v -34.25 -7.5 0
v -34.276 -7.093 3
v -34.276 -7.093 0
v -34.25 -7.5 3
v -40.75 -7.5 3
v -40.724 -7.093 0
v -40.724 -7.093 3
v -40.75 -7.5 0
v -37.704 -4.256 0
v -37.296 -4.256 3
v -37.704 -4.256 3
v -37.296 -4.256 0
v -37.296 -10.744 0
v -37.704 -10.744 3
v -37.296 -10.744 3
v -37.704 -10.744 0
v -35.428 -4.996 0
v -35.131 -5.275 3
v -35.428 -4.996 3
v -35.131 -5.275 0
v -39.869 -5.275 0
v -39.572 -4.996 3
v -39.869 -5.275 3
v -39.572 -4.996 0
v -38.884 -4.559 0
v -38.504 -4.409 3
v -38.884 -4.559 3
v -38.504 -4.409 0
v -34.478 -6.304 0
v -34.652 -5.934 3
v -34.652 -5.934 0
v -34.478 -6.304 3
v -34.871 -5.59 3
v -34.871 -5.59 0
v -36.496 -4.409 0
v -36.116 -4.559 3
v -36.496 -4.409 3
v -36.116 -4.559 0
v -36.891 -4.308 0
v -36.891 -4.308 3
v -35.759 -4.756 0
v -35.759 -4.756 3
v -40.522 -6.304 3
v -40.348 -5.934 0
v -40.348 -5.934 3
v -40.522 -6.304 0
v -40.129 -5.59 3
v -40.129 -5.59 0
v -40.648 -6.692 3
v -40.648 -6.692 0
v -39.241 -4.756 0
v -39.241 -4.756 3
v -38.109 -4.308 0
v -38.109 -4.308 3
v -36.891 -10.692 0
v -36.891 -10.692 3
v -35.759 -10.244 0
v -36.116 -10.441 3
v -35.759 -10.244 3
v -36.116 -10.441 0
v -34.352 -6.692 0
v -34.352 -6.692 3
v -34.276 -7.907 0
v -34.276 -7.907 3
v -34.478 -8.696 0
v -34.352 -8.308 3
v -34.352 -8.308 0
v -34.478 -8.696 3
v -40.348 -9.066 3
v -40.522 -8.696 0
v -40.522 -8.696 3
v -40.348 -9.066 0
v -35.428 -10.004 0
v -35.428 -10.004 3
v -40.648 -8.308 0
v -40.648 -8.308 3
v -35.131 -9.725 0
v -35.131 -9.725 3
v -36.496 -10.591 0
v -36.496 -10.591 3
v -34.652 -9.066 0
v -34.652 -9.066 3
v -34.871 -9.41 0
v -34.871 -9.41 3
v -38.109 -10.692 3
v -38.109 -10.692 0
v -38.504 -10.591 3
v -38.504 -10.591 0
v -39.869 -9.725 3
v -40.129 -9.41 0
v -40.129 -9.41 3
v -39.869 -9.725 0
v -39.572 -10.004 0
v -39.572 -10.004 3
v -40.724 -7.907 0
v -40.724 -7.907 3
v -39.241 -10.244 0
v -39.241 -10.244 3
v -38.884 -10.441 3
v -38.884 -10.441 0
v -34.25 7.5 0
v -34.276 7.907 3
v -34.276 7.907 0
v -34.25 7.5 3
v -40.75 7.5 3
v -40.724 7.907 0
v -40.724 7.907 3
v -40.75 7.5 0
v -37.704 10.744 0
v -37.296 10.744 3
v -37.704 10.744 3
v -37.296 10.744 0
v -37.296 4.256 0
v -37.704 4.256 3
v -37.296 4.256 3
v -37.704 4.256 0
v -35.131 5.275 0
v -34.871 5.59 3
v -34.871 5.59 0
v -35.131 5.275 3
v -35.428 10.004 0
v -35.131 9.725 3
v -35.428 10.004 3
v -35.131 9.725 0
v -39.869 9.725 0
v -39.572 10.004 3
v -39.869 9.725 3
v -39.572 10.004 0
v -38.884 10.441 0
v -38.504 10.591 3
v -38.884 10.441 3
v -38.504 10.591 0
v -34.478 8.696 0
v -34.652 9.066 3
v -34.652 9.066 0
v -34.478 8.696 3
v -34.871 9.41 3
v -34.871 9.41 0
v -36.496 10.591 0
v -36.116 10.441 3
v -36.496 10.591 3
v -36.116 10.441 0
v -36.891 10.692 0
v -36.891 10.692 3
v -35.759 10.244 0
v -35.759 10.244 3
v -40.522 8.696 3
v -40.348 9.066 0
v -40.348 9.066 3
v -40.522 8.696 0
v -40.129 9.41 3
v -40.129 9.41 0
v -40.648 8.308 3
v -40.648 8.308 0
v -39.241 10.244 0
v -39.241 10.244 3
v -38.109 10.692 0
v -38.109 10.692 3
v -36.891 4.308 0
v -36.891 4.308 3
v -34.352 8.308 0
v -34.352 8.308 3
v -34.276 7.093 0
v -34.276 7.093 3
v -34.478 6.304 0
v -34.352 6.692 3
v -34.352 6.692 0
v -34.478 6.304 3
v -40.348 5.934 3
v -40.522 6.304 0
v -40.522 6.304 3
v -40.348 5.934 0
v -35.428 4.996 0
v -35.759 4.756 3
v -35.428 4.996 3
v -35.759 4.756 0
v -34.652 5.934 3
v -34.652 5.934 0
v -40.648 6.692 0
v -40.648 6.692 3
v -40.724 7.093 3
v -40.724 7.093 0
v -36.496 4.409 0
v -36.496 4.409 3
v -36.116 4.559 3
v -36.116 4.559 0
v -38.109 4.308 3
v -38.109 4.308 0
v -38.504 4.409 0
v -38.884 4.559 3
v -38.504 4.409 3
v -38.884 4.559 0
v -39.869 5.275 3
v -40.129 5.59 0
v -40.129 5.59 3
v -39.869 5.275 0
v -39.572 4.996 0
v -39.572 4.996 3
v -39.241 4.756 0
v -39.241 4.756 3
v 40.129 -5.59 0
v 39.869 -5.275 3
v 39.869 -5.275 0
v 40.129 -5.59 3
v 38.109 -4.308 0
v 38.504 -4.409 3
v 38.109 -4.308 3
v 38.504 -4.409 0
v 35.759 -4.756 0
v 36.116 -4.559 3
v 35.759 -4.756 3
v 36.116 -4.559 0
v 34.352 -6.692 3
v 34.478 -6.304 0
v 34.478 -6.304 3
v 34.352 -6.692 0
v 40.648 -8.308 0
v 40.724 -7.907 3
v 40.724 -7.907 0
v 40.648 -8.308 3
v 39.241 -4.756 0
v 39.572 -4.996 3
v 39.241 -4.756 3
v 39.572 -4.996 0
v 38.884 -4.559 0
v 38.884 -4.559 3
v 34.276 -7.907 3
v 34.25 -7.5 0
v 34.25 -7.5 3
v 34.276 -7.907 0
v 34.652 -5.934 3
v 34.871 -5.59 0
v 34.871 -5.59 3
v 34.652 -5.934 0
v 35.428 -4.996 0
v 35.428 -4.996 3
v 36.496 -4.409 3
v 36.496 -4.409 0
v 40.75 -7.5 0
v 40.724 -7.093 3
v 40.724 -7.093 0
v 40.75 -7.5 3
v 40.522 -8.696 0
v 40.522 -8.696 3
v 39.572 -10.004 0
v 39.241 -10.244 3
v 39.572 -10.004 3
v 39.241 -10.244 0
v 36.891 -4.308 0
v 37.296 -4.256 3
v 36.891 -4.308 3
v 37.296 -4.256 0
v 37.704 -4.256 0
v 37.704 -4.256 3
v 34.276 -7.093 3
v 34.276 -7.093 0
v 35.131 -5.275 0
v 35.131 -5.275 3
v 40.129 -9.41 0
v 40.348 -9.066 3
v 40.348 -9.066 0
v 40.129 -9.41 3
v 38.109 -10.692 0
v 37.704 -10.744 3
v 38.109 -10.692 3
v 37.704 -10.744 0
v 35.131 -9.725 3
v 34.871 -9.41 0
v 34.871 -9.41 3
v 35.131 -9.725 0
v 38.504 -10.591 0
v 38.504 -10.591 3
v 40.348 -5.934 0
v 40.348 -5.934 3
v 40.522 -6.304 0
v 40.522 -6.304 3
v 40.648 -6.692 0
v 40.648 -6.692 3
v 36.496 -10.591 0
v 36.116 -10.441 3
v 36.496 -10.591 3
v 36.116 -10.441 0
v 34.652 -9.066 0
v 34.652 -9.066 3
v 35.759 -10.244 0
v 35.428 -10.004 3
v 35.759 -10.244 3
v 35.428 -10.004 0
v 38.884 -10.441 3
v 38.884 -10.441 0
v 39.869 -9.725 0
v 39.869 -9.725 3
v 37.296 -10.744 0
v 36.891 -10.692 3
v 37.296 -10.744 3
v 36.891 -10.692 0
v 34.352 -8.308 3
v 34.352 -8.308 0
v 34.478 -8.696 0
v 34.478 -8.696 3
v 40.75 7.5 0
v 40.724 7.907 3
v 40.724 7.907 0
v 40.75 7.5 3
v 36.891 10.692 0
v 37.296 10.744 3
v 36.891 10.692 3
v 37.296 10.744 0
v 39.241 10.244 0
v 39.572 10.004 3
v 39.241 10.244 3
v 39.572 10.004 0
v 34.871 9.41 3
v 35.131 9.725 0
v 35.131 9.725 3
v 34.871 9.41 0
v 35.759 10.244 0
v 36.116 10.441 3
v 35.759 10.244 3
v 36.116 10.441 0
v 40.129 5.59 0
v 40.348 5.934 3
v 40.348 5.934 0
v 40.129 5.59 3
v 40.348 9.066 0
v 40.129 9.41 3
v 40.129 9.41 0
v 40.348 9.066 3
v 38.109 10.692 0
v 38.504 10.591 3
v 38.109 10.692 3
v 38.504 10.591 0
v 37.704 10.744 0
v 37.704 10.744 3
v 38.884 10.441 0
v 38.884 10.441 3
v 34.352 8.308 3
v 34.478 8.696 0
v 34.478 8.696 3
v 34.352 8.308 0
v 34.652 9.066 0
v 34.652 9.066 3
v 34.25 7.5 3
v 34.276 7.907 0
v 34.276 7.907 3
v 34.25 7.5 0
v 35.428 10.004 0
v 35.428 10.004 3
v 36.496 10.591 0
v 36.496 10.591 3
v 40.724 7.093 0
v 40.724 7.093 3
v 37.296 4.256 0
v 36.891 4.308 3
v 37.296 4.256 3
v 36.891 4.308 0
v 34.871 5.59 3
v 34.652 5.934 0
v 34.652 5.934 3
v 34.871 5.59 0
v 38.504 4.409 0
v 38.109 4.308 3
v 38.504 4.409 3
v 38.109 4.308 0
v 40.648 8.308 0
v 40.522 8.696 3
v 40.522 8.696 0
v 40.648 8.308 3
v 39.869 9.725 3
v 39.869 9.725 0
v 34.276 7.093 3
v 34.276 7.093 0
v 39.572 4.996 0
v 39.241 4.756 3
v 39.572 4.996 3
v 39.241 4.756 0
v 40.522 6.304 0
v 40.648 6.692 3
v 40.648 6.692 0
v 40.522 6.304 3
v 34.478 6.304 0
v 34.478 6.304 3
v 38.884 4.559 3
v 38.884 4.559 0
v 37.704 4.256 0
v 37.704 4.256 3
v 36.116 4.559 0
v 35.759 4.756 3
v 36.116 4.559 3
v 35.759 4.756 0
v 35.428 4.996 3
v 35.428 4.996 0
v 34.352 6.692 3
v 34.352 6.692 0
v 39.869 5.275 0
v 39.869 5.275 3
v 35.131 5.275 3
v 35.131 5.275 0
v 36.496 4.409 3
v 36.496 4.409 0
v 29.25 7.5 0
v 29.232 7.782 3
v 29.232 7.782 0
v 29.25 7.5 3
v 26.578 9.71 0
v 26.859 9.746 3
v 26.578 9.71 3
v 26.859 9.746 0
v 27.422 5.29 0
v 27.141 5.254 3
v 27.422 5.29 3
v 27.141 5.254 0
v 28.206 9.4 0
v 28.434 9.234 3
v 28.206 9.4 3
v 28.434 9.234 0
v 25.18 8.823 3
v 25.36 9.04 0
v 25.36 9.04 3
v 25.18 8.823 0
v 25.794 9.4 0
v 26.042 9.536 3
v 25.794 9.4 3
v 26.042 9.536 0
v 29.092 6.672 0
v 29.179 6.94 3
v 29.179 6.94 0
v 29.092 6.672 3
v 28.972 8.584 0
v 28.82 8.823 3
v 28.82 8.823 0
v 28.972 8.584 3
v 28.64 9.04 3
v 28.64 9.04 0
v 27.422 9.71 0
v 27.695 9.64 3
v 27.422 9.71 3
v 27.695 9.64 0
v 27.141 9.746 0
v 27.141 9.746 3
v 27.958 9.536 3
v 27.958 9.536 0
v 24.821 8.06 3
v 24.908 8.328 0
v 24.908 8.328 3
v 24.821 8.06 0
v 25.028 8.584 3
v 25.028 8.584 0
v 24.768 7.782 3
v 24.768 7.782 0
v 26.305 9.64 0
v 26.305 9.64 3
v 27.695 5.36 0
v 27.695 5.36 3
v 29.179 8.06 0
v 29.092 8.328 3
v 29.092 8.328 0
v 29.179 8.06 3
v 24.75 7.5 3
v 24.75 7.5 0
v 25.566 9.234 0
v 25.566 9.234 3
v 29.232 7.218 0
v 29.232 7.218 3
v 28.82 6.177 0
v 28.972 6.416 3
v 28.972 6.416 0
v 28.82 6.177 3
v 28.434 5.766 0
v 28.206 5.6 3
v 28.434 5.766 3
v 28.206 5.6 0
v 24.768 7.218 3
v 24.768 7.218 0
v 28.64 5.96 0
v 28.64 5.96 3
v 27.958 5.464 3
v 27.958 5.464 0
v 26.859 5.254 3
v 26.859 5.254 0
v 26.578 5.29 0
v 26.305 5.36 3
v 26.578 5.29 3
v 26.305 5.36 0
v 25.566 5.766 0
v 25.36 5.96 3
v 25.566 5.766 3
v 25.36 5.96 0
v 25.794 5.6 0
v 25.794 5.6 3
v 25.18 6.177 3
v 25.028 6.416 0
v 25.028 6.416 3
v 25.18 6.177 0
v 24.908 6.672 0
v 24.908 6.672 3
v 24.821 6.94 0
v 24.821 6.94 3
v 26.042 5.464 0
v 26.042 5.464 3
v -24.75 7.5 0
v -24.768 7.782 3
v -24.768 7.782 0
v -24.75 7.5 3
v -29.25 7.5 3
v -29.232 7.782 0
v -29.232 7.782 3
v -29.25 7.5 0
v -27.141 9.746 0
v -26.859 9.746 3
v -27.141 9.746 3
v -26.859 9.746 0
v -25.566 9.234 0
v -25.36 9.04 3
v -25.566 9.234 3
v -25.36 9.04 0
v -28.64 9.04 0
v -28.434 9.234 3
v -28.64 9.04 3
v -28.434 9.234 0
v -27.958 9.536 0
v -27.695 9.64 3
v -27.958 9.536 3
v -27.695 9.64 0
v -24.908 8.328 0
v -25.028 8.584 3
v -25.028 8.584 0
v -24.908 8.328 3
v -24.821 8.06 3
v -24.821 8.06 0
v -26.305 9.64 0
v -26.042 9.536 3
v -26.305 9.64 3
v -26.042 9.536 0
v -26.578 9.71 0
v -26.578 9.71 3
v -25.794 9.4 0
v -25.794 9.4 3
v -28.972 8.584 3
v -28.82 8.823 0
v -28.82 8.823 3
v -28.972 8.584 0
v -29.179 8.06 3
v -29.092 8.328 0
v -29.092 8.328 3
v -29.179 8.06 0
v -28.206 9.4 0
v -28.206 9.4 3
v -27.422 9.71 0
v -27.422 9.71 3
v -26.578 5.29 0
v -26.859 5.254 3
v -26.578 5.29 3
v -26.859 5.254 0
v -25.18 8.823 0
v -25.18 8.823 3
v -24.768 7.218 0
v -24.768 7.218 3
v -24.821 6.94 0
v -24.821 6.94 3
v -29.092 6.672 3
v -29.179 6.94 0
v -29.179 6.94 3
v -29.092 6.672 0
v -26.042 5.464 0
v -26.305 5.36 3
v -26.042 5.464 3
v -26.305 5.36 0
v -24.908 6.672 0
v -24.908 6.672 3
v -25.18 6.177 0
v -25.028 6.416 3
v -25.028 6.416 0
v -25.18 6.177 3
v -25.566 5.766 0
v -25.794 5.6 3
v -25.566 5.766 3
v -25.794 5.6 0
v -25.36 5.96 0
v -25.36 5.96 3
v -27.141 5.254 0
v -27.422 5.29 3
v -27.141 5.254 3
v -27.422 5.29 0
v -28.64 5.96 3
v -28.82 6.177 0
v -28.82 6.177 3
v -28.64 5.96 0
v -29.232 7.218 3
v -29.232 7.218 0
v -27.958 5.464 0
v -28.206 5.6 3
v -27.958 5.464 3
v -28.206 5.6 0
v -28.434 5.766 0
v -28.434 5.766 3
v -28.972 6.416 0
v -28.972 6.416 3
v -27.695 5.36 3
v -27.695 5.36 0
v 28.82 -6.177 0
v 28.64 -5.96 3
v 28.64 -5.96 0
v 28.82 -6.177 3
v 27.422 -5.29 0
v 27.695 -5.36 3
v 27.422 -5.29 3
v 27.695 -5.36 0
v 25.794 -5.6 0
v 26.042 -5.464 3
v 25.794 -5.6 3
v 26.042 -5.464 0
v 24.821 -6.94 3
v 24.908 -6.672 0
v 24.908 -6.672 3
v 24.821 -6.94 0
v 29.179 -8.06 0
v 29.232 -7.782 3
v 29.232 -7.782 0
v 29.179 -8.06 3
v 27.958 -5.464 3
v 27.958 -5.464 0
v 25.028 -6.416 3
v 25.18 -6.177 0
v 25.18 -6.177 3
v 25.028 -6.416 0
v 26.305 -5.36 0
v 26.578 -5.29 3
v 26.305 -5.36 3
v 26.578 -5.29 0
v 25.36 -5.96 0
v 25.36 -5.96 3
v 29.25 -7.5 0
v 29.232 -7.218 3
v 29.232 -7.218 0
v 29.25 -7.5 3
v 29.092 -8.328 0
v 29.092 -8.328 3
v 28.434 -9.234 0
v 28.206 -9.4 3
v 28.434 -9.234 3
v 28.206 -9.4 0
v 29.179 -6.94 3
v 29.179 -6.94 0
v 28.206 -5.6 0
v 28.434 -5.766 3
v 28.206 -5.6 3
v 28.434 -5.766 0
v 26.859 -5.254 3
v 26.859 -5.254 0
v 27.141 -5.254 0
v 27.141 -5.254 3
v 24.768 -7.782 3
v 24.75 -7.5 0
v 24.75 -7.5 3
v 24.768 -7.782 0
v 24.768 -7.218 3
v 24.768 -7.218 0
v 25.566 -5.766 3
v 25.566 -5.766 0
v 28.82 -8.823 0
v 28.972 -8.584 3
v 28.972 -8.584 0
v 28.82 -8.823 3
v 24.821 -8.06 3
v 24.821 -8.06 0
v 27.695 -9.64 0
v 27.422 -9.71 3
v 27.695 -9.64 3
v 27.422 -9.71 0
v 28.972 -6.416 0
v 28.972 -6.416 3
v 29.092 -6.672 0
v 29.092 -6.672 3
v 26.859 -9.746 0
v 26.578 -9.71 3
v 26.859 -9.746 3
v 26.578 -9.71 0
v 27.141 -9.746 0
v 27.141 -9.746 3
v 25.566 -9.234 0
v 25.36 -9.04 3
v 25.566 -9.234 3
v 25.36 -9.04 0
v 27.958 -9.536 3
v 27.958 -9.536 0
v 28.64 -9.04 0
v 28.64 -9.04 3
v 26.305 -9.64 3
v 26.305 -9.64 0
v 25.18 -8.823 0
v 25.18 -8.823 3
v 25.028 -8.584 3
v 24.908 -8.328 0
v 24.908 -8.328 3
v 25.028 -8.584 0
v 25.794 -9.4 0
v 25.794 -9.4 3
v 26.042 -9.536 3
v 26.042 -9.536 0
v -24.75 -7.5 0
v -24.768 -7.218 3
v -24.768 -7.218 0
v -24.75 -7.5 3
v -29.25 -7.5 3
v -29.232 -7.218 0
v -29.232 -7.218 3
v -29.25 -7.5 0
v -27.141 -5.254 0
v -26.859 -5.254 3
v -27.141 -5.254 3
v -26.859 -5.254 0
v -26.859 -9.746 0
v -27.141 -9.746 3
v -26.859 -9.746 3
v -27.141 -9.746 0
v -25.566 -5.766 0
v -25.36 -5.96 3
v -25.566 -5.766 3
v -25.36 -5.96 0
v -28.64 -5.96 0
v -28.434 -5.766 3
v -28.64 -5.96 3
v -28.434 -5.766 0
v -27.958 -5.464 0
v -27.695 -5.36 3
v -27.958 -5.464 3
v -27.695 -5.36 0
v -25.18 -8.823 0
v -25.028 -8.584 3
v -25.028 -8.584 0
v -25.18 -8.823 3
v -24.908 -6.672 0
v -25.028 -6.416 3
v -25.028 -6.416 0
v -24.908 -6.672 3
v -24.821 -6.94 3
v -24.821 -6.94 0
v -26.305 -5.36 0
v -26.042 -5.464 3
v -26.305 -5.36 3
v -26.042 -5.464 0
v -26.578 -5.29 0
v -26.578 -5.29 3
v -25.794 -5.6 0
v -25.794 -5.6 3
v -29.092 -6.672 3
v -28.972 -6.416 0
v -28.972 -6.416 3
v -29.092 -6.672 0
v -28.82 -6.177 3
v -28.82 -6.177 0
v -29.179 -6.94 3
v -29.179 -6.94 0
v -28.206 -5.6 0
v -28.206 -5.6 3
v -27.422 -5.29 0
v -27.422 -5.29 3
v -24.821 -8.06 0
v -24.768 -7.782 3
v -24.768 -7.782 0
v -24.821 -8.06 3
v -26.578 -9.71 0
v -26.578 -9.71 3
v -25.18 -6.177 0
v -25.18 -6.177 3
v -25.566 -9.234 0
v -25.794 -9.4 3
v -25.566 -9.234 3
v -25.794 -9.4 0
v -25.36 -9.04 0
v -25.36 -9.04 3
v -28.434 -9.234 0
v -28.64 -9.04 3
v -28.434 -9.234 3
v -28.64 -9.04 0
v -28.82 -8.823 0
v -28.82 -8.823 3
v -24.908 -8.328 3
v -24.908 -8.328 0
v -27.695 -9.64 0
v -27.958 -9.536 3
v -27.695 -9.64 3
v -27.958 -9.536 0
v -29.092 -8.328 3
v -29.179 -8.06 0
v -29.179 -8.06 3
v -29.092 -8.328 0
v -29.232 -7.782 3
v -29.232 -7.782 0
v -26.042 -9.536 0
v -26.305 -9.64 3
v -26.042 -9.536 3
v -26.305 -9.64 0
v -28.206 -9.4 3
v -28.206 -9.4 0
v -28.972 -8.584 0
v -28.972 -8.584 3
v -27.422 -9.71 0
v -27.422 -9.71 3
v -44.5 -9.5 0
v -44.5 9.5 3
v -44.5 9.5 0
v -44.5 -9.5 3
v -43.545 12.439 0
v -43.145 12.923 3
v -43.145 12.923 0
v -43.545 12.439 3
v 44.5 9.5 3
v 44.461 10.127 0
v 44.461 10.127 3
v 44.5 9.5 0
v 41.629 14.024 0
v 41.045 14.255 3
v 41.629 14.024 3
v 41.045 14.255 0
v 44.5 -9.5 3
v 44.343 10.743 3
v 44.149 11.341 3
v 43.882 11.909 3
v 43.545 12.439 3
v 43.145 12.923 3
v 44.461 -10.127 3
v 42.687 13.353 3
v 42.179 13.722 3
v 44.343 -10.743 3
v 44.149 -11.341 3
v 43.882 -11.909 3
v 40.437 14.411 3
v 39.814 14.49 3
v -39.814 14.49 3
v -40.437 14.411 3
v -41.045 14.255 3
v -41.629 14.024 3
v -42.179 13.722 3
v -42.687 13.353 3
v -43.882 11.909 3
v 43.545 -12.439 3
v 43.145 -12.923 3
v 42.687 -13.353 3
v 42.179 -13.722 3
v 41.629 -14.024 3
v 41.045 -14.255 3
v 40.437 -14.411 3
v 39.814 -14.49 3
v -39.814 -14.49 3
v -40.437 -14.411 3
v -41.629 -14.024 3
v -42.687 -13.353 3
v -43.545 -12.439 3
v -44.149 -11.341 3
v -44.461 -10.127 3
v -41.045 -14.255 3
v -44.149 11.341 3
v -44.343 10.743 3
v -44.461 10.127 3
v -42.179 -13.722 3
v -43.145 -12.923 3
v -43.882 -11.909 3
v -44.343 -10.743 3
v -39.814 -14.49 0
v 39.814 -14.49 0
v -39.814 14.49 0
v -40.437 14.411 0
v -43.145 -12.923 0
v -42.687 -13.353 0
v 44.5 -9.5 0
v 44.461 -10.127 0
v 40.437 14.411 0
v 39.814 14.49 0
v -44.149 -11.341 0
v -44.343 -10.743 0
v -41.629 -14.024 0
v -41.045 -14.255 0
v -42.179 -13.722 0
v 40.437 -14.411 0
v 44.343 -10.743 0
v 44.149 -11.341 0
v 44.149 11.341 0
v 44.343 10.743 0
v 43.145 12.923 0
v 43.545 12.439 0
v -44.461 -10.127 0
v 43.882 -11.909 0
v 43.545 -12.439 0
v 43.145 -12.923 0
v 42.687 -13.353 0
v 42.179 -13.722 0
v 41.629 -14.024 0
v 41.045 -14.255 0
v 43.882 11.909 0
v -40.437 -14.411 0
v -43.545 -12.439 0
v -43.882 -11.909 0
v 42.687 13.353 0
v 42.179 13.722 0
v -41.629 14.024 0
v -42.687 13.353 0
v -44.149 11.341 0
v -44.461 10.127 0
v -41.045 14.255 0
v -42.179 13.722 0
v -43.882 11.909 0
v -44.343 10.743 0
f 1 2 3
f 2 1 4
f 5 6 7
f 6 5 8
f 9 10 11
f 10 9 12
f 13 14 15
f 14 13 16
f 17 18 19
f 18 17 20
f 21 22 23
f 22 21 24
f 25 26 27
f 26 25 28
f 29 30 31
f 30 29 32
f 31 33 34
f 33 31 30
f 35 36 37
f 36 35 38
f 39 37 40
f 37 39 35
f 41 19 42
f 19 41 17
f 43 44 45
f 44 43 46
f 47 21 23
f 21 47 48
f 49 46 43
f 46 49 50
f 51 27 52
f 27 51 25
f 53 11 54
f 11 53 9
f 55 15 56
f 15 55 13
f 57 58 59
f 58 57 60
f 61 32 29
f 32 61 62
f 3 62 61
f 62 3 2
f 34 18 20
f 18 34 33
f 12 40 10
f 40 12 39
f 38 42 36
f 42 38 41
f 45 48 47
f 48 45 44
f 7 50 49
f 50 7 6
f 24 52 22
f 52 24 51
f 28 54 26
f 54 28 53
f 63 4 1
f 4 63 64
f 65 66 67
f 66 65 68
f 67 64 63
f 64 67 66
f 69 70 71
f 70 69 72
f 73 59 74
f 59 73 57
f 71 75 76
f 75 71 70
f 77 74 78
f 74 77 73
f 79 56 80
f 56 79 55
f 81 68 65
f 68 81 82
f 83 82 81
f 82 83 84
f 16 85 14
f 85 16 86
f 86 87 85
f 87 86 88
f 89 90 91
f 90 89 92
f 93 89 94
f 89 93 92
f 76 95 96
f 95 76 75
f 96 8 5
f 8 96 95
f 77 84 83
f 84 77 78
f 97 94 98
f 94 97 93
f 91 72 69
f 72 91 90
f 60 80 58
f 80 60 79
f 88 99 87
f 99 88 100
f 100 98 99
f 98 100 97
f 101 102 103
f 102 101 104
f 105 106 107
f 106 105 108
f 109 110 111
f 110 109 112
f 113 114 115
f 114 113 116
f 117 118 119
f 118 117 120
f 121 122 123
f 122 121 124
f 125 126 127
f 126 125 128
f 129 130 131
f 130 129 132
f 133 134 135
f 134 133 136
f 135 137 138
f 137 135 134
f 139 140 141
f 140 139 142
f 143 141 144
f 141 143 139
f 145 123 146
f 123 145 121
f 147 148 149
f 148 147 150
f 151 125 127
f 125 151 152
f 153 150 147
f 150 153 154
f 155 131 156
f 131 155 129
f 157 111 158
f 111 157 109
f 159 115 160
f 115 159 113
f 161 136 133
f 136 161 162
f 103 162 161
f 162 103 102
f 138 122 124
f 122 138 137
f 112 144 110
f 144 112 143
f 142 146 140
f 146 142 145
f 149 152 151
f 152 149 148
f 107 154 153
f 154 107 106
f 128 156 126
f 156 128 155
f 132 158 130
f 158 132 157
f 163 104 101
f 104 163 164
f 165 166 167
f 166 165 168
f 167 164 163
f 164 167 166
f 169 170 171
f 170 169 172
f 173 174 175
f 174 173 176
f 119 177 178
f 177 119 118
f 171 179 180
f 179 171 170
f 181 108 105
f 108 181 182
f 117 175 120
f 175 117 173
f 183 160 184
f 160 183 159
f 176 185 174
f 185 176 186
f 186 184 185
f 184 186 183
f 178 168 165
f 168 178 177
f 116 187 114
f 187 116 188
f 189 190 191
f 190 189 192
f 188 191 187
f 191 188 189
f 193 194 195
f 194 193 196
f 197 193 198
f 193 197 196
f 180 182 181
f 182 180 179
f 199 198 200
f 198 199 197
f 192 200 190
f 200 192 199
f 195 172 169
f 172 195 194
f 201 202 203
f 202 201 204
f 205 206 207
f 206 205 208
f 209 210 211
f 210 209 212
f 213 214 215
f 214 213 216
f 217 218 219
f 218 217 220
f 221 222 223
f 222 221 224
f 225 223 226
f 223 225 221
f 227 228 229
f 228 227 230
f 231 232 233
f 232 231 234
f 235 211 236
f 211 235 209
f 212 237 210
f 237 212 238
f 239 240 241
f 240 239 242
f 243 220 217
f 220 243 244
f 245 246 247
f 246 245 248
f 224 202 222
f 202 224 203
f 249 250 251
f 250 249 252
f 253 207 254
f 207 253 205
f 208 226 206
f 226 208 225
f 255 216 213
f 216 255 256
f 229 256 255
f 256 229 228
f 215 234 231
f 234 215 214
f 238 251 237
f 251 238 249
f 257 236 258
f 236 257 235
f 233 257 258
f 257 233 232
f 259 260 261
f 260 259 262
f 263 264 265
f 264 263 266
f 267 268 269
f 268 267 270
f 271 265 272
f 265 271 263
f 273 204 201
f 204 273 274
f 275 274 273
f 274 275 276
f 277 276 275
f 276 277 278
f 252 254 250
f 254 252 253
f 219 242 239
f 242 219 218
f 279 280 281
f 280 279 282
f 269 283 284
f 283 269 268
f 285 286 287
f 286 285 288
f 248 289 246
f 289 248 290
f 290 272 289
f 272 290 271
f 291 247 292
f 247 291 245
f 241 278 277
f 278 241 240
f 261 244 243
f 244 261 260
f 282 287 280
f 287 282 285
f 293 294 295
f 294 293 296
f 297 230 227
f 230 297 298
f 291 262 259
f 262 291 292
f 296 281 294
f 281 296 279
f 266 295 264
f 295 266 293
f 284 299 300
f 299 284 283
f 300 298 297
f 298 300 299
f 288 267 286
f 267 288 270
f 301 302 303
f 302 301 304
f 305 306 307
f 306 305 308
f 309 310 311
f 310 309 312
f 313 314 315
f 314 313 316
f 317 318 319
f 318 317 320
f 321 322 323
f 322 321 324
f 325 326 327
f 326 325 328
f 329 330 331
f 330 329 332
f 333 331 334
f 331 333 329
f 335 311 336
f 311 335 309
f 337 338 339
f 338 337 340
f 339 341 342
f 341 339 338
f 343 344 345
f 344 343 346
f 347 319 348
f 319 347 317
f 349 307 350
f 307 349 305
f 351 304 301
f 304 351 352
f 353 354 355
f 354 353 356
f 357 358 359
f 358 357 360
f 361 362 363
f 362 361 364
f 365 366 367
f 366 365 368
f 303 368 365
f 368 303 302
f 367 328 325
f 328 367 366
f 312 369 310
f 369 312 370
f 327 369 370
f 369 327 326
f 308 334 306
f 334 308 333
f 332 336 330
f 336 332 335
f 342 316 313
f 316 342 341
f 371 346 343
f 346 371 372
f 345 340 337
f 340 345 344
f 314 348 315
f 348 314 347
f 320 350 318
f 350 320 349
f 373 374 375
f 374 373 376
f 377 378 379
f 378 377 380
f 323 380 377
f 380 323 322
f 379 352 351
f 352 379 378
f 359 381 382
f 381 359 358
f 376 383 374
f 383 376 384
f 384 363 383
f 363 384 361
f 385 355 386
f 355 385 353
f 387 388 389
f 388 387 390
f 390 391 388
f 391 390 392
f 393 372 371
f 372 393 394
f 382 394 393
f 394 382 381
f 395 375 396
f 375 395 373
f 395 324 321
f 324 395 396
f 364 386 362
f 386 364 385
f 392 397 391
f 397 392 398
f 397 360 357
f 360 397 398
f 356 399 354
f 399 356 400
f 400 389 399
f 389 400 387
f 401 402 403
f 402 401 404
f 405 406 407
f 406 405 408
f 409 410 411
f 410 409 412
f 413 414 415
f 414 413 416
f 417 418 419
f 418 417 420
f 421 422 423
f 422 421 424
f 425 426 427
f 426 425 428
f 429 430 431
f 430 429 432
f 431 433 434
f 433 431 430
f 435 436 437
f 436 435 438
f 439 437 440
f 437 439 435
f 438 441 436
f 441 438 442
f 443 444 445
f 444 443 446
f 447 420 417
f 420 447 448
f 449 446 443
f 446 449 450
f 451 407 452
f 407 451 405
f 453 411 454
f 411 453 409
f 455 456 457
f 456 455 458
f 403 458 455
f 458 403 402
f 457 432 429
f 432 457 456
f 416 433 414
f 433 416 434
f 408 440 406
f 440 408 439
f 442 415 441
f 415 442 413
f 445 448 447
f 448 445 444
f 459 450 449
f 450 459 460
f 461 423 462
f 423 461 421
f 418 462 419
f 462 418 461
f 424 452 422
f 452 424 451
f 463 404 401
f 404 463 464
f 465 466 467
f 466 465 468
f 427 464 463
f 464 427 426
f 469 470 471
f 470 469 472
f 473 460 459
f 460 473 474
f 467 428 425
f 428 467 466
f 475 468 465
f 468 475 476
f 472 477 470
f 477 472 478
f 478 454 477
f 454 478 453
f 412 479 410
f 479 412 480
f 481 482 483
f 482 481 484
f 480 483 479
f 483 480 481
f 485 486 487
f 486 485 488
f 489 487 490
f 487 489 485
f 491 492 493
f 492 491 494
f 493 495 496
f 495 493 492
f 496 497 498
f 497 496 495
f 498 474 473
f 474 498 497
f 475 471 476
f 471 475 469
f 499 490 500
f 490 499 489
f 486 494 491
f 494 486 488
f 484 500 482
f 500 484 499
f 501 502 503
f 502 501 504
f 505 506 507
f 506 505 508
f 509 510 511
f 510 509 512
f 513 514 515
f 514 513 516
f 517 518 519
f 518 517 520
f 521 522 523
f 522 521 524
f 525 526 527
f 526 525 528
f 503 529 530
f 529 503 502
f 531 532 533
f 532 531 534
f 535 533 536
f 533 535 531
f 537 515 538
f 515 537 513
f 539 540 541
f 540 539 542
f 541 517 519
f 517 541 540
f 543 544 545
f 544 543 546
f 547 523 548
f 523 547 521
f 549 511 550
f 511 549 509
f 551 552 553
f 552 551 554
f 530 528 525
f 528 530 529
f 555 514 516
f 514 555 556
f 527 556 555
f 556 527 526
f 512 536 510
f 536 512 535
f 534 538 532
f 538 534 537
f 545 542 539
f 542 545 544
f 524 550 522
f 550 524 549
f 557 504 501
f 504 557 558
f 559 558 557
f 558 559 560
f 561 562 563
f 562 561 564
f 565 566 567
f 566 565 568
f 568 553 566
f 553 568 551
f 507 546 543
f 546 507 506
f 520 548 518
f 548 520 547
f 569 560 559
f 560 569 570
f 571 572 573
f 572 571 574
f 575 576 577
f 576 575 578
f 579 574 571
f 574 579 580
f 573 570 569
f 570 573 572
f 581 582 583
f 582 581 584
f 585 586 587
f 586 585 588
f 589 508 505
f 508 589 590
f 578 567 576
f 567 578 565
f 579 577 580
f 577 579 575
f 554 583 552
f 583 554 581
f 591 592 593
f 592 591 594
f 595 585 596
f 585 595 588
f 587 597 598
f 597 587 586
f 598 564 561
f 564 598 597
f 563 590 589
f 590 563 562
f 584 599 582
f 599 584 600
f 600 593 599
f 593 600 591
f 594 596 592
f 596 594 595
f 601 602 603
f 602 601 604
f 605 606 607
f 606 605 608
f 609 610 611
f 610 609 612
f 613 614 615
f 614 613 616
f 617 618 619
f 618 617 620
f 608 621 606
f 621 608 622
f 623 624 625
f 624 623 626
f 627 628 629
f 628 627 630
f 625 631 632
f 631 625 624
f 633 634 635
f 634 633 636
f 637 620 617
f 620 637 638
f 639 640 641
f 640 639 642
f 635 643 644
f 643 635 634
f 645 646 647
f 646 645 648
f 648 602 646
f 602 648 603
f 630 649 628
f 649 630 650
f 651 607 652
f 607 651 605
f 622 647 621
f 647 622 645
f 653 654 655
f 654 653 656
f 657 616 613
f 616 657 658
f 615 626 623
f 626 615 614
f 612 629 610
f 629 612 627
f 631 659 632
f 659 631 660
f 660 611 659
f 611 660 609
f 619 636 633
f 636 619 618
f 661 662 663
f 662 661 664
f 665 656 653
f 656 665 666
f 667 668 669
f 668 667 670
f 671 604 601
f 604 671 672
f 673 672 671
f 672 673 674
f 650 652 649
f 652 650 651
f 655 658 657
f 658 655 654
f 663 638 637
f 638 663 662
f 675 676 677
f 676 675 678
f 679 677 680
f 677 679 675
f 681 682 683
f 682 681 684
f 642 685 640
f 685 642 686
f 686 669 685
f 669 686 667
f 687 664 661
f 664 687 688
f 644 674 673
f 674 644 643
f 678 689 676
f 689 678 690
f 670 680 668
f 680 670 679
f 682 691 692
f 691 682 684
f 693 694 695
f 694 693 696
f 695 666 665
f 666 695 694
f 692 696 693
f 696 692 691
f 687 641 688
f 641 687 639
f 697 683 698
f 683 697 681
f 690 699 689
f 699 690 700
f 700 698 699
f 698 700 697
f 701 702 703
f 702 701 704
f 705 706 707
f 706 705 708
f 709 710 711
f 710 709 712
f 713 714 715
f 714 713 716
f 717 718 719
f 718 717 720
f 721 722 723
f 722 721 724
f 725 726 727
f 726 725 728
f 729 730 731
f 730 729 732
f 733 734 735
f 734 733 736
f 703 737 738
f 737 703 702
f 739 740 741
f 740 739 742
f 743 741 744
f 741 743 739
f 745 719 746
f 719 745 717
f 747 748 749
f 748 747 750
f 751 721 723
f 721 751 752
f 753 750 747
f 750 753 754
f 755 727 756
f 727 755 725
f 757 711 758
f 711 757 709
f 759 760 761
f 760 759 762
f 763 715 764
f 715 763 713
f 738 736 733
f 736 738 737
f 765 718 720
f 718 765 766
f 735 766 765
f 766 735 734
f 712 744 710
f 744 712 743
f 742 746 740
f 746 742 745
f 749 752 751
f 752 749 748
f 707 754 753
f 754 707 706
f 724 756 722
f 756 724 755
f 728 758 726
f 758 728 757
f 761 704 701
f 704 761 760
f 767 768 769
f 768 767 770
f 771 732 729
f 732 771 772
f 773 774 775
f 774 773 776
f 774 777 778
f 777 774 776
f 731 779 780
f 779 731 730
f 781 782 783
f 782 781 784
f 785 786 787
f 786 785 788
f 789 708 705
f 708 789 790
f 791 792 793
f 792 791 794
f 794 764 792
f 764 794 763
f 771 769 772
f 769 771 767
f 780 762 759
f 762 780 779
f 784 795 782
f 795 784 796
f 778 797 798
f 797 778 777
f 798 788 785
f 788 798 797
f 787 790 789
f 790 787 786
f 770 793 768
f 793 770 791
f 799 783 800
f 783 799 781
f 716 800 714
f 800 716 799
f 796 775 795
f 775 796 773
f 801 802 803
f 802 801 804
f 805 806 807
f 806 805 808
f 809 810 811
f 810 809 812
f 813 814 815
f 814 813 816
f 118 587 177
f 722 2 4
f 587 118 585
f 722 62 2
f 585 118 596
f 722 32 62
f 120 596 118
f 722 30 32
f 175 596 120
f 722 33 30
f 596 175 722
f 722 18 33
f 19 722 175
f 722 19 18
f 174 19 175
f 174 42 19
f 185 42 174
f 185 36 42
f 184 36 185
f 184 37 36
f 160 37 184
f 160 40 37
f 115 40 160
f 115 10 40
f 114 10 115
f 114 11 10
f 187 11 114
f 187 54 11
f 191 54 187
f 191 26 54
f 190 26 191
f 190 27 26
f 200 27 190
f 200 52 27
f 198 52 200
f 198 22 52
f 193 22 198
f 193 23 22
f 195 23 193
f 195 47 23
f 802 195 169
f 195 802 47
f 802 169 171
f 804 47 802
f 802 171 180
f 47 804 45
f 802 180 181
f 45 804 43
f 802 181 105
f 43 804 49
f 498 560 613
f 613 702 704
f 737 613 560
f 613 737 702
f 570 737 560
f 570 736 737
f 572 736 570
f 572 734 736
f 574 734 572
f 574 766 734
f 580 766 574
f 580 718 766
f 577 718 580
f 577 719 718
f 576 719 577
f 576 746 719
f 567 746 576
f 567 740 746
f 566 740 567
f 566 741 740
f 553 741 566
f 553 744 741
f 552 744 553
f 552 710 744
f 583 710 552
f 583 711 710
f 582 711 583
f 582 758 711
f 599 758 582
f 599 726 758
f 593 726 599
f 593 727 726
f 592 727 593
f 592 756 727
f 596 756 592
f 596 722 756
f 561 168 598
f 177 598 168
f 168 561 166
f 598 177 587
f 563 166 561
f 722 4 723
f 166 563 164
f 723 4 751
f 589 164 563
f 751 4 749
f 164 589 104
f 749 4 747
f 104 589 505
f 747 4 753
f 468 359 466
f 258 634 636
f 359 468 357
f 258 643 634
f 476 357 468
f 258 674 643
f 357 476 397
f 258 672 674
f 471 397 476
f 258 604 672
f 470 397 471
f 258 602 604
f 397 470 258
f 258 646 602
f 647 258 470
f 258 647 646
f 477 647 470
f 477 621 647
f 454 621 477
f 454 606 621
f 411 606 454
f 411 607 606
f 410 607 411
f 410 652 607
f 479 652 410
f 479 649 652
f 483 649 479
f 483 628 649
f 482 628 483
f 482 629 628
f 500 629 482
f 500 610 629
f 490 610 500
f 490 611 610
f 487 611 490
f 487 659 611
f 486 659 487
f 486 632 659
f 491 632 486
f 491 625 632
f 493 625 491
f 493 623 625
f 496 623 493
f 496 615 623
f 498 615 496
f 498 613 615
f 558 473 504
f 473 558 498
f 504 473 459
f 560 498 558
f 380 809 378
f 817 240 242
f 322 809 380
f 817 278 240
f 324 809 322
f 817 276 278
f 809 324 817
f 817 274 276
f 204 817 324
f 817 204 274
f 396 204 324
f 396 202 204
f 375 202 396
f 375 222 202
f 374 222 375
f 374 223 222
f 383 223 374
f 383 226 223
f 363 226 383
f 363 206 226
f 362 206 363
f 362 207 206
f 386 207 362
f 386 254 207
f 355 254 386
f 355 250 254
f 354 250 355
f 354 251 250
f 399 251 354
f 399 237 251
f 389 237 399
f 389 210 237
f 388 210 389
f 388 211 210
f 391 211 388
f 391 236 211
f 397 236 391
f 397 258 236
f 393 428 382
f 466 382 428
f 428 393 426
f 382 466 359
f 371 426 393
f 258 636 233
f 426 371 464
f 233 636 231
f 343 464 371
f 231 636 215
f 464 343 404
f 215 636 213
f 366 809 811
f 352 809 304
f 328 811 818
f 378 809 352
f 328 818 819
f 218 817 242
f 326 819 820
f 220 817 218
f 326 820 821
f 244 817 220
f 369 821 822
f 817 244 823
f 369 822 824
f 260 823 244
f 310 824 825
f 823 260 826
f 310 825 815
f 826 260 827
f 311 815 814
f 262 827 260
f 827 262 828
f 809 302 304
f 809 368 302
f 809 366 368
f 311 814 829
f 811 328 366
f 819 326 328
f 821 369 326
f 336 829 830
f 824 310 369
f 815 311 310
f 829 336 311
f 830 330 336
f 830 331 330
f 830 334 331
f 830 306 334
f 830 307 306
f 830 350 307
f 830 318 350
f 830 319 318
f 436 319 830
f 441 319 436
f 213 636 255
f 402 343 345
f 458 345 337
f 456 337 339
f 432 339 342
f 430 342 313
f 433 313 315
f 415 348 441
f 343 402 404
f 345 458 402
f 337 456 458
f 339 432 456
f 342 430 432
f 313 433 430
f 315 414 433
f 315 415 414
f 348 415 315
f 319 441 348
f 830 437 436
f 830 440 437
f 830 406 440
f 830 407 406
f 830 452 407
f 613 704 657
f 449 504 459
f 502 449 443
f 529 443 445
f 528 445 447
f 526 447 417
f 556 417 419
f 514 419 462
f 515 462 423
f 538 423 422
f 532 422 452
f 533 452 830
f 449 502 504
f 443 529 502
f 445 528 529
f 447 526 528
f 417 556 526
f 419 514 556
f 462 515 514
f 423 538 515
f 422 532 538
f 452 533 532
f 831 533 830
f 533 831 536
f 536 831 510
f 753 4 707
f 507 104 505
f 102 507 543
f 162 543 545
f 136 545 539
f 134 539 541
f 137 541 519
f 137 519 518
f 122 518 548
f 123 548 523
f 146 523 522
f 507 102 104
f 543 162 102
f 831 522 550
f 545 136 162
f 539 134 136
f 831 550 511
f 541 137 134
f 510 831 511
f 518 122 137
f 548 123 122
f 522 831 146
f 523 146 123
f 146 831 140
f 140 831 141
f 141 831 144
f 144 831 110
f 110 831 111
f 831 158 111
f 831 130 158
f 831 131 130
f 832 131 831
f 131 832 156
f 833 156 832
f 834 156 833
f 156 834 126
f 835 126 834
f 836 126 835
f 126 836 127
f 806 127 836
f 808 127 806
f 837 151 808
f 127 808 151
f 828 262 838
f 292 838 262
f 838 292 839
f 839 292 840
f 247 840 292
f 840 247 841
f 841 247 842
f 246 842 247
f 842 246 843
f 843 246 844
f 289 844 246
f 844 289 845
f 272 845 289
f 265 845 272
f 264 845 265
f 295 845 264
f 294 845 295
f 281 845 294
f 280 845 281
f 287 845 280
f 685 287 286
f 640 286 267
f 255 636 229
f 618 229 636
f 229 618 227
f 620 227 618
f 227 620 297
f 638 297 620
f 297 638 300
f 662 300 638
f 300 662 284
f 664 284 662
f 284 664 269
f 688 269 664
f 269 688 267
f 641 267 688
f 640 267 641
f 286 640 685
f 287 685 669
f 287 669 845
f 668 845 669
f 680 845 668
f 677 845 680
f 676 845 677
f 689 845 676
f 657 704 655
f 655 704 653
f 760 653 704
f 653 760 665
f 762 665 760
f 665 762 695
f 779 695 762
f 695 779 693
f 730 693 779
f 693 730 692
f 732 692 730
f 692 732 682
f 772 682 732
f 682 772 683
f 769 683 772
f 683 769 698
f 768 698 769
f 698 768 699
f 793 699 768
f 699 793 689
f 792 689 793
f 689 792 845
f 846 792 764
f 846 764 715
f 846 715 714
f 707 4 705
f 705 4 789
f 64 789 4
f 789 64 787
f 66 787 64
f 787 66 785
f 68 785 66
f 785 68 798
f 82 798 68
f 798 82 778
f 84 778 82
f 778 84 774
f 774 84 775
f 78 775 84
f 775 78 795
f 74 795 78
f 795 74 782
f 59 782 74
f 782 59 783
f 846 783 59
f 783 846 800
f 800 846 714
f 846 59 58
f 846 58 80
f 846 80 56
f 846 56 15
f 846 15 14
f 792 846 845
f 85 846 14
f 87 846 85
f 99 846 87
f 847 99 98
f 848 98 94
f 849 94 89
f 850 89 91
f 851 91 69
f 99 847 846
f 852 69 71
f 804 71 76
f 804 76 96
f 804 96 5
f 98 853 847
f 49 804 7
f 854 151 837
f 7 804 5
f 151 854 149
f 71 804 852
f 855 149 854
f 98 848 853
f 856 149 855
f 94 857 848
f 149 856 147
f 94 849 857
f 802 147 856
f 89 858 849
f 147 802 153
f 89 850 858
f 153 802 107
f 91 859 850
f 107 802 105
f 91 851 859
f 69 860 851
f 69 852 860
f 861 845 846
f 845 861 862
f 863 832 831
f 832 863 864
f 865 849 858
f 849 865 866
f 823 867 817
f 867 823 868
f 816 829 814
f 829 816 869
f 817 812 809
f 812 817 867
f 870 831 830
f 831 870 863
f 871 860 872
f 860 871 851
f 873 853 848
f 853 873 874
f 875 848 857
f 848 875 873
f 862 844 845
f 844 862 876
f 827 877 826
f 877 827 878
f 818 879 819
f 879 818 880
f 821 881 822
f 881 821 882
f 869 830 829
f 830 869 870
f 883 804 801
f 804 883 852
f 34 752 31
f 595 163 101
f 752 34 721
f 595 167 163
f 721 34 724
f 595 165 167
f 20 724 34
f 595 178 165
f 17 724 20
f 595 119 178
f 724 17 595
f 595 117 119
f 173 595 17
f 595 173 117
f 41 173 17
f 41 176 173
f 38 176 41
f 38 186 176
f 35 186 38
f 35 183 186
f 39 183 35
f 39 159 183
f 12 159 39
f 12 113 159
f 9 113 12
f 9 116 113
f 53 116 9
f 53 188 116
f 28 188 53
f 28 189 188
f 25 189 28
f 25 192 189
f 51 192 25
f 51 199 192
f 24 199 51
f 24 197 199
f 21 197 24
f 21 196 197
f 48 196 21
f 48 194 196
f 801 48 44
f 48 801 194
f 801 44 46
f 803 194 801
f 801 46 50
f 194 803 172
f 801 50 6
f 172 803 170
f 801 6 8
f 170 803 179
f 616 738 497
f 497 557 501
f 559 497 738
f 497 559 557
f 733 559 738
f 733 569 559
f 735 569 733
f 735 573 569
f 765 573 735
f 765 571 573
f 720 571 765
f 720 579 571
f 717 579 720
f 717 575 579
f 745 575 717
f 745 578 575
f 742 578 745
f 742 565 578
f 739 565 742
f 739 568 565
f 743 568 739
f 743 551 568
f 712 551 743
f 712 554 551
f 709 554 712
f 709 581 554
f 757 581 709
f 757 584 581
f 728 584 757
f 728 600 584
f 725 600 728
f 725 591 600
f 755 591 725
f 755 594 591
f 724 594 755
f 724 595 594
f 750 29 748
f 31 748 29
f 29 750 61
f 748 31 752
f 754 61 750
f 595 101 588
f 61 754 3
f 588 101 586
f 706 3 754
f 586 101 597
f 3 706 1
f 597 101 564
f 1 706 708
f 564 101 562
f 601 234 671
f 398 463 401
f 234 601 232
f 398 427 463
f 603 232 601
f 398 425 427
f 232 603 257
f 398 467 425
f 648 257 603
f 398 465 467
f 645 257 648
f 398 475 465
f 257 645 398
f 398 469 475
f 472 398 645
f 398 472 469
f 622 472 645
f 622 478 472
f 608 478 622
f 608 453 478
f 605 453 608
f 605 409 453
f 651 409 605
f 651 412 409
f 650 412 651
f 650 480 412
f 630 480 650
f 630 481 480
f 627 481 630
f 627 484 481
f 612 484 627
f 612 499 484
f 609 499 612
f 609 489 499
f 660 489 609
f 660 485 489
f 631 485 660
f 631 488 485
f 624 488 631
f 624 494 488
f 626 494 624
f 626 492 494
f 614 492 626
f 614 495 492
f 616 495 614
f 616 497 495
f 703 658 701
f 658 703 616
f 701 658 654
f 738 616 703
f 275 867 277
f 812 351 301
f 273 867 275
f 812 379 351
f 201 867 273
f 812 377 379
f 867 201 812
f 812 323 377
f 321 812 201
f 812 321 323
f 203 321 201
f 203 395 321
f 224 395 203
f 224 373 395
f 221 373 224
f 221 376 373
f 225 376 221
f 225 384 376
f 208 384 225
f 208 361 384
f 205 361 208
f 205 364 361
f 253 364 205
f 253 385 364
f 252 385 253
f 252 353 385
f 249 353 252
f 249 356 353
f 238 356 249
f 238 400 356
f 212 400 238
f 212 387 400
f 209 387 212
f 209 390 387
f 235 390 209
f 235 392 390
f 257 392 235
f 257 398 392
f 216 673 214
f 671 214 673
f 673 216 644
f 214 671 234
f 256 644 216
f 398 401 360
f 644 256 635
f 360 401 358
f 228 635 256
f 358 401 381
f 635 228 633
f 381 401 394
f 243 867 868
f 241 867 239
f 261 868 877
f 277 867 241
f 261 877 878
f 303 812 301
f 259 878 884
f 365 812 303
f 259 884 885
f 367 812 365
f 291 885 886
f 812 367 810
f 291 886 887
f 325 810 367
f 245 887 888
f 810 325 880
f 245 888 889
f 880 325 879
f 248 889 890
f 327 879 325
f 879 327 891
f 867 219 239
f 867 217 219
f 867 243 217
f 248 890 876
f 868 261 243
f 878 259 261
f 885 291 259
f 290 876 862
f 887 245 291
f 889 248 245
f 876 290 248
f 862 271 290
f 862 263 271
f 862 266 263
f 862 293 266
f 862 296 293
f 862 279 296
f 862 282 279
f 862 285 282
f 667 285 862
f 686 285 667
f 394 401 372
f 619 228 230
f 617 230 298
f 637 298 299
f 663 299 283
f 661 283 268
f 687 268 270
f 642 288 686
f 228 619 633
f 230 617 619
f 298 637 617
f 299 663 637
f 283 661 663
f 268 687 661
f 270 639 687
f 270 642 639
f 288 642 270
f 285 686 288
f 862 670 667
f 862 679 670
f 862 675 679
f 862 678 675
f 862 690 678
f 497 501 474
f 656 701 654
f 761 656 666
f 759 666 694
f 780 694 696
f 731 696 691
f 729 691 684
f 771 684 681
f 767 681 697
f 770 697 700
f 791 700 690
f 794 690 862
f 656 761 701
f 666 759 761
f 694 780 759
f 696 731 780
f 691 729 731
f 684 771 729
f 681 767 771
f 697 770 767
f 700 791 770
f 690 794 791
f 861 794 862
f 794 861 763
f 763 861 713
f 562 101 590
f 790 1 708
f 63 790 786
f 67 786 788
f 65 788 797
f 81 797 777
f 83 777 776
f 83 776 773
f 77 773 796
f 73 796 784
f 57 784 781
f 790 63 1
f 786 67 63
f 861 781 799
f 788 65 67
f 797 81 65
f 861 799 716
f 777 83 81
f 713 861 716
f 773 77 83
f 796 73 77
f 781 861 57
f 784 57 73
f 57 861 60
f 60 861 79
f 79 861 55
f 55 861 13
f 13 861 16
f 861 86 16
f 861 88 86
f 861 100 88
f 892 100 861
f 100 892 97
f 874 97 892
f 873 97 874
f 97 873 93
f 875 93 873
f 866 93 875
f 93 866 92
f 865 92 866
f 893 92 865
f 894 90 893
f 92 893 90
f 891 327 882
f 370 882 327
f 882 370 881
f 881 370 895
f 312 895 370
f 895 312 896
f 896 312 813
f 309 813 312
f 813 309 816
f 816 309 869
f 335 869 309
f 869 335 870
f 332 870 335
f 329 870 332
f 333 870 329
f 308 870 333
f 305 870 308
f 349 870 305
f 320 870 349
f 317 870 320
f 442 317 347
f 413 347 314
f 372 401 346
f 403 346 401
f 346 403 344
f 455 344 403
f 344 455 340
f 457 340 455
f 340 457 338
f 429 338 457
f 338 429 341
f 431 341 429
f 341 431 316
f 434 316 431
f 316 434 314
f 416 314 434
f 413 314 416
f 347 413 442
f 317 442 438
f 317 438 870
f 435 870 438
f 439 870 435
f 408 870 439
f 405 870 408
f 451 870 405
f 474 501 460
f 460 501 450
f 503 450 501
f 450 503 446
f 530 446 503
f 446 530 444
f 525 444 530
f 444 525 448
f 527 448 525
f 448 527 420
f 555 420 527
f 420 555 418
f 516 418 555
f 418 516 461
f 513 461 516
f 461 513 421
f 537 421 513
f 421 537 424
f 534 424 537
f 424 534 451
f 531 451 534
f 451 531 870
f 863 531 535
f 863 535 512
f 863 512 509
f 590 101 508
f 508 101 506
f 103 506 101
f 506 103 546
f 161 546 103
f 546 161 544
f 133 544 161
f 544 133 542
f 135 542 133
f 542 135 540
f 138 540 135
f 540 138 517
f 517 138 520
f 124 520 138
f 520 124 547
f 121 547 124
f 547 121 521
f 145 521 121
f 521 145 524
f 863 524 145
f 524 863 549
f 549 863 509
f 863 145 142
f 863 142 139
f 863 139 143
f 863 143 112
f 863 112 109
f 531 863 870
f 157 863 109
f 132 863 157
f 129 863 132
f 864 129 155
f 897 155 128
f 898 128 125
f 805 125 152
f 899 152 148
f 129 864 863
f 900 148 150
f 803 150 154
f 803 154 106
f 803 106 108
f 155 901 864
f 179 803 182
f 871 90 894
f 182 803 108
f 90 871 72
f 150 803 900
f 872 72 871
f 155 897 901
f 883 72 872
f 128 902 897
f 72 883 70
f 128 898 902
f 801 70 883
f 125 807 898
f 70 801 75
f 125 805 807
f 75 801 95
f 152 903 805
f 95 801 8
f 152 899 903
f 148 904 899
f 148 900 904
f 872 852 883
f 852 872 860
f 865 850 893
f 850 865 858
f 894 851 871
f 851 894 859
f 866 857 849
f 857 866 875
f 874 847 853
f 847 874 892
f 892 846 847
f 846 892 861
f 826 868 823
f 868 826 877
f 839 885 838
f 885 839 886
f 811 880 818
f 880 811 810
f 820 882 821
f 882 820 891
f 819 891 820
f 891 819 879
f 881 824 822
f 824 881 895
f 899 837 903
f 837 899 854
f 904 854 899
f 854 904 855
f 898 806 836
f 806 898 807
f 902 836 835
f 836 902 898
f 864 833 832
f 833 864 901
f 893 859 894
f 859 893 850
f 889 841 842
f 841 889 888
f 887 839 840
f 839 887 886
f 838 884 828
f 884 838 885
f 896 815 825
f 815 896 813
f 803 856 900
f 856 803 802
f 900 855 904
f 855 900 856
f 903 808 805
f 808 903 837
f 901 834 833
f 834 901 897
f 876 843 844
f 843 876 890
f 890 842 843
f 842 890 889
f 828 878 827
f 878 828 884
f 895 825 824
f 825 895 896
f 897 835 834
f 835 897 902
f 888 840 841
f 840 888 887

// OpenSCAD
$fn = 50;


difference() {
	union() {
		translate(v = [0, 0, 0]) {
			rotate(a = [0, 0, 0]) {
				hull() {
					translate(v = [-39.5000000000, 9.5000000000, 0]) {
						rotate(a = [0, 0, 0]) {
							translate(v = [0, 0, 0]) {
								rotate(a = [0, 0, 0]) {
									cylinder(h = 3, r = 5);
								}
							}
						}
					}
					translate(v = [39.5000000000, 9.5000000000, 0]) {
						rotate(a = [0, 0, 0]) {
							translate(v = [0, 0, 0]) {
								rotate(a = [0, 0, 0]) {
									cylinder(h = 3, r = 5);
								}
							}
						}
					}
					translate(v = [-39.5000000000, -9.5000000000, 0]) {
						rotate(a = [0, 0, 0]) {
							translate(v = [0, 0, 0]) {
								rotate(a = [0, 0, 0]) {
									cylinder(h = 3, r = 5);
								}
							}
						}
					}
					translate(v = [39.5000000000, -9.5000000000, 0]) {
						rotate(a = [0, 0, 0]) {
							translate(v = [0, 0, 0]) {
								rotate(a = [0, 0, 0]) {
									cylinder(h = 3, r = 5);
								}
							}
						}
					}
				}
			}
		}
	}
	union() {
		translate(v = [-37.5000000000, -7.5000000000, -125.0000000000]) {
			rotate(a = [0, 0, 0]) {
				cylinder(h = 250, r = 3.2500000000);
			}
		}
		translate(v = [-37.5000000000, 7.5000000000, -125.0000000000]) {
			rotate(a = [0, 0, 0]) {
				cylinder(h = 250, r = 3.2500000000);
			}
		}
		translate(v = [37.5000000000, -7.5000000000, -125.0000000000]) {
			rotate(a = [0, 0, 0]) {
				cylinder(h = 250, r = 3.2500000000);
			}
		}
		translate(v = [37.5000000000, 7.5000000000, -125.0000000000]) {
			rotate(a = [0, 0, 0]) {
				cylinder(h = 250, r = 3.2500000000);
			}
		}
		translate(v = [37.5000000000, -7.5000000000, -125.0000000000]) {
			rotate(a = [0, 0, 0]) {
				cylinder(h = 250, r = 3.2500000000);
			}
		}
		translate(v = [37.5000000000, 7.5000000000, -125.0000000000]) {
			rotate(a = [0, 0, 0]) {
				cylinder(h = 250, r = 3.2500000000);
			}
		}
		translate(v = [27.0000000000, 7.5000000000, -125.0000000000]) {
			rotate(a = [0, 0, 0]) {
				cylinder(h = 250, r = 2.2500000000);
			}
		}
		translate(v = [-27.0000000000, 7.5000000000, -125.0000000000]) {
			rotate(a = [0, 0, 0]) {
				cylinder(h = 250, r = 2.2500000000);
			}
		}
		translate(v = [27.0000000000, -7.5000000000, -125.0000000000]) {
			rotate(a = [0, 0, 0]) {
				cylinder(h = 250, r = 2.2500000000);
			}
		}
		translate(v = [-27.0000000000, -7.5000000000, -125.0000000000]) {
			rotate(a = [0, 0, 0]) {
				cylinder(h = 250, r = 2.2500000000);
			}
		}
	}
}
